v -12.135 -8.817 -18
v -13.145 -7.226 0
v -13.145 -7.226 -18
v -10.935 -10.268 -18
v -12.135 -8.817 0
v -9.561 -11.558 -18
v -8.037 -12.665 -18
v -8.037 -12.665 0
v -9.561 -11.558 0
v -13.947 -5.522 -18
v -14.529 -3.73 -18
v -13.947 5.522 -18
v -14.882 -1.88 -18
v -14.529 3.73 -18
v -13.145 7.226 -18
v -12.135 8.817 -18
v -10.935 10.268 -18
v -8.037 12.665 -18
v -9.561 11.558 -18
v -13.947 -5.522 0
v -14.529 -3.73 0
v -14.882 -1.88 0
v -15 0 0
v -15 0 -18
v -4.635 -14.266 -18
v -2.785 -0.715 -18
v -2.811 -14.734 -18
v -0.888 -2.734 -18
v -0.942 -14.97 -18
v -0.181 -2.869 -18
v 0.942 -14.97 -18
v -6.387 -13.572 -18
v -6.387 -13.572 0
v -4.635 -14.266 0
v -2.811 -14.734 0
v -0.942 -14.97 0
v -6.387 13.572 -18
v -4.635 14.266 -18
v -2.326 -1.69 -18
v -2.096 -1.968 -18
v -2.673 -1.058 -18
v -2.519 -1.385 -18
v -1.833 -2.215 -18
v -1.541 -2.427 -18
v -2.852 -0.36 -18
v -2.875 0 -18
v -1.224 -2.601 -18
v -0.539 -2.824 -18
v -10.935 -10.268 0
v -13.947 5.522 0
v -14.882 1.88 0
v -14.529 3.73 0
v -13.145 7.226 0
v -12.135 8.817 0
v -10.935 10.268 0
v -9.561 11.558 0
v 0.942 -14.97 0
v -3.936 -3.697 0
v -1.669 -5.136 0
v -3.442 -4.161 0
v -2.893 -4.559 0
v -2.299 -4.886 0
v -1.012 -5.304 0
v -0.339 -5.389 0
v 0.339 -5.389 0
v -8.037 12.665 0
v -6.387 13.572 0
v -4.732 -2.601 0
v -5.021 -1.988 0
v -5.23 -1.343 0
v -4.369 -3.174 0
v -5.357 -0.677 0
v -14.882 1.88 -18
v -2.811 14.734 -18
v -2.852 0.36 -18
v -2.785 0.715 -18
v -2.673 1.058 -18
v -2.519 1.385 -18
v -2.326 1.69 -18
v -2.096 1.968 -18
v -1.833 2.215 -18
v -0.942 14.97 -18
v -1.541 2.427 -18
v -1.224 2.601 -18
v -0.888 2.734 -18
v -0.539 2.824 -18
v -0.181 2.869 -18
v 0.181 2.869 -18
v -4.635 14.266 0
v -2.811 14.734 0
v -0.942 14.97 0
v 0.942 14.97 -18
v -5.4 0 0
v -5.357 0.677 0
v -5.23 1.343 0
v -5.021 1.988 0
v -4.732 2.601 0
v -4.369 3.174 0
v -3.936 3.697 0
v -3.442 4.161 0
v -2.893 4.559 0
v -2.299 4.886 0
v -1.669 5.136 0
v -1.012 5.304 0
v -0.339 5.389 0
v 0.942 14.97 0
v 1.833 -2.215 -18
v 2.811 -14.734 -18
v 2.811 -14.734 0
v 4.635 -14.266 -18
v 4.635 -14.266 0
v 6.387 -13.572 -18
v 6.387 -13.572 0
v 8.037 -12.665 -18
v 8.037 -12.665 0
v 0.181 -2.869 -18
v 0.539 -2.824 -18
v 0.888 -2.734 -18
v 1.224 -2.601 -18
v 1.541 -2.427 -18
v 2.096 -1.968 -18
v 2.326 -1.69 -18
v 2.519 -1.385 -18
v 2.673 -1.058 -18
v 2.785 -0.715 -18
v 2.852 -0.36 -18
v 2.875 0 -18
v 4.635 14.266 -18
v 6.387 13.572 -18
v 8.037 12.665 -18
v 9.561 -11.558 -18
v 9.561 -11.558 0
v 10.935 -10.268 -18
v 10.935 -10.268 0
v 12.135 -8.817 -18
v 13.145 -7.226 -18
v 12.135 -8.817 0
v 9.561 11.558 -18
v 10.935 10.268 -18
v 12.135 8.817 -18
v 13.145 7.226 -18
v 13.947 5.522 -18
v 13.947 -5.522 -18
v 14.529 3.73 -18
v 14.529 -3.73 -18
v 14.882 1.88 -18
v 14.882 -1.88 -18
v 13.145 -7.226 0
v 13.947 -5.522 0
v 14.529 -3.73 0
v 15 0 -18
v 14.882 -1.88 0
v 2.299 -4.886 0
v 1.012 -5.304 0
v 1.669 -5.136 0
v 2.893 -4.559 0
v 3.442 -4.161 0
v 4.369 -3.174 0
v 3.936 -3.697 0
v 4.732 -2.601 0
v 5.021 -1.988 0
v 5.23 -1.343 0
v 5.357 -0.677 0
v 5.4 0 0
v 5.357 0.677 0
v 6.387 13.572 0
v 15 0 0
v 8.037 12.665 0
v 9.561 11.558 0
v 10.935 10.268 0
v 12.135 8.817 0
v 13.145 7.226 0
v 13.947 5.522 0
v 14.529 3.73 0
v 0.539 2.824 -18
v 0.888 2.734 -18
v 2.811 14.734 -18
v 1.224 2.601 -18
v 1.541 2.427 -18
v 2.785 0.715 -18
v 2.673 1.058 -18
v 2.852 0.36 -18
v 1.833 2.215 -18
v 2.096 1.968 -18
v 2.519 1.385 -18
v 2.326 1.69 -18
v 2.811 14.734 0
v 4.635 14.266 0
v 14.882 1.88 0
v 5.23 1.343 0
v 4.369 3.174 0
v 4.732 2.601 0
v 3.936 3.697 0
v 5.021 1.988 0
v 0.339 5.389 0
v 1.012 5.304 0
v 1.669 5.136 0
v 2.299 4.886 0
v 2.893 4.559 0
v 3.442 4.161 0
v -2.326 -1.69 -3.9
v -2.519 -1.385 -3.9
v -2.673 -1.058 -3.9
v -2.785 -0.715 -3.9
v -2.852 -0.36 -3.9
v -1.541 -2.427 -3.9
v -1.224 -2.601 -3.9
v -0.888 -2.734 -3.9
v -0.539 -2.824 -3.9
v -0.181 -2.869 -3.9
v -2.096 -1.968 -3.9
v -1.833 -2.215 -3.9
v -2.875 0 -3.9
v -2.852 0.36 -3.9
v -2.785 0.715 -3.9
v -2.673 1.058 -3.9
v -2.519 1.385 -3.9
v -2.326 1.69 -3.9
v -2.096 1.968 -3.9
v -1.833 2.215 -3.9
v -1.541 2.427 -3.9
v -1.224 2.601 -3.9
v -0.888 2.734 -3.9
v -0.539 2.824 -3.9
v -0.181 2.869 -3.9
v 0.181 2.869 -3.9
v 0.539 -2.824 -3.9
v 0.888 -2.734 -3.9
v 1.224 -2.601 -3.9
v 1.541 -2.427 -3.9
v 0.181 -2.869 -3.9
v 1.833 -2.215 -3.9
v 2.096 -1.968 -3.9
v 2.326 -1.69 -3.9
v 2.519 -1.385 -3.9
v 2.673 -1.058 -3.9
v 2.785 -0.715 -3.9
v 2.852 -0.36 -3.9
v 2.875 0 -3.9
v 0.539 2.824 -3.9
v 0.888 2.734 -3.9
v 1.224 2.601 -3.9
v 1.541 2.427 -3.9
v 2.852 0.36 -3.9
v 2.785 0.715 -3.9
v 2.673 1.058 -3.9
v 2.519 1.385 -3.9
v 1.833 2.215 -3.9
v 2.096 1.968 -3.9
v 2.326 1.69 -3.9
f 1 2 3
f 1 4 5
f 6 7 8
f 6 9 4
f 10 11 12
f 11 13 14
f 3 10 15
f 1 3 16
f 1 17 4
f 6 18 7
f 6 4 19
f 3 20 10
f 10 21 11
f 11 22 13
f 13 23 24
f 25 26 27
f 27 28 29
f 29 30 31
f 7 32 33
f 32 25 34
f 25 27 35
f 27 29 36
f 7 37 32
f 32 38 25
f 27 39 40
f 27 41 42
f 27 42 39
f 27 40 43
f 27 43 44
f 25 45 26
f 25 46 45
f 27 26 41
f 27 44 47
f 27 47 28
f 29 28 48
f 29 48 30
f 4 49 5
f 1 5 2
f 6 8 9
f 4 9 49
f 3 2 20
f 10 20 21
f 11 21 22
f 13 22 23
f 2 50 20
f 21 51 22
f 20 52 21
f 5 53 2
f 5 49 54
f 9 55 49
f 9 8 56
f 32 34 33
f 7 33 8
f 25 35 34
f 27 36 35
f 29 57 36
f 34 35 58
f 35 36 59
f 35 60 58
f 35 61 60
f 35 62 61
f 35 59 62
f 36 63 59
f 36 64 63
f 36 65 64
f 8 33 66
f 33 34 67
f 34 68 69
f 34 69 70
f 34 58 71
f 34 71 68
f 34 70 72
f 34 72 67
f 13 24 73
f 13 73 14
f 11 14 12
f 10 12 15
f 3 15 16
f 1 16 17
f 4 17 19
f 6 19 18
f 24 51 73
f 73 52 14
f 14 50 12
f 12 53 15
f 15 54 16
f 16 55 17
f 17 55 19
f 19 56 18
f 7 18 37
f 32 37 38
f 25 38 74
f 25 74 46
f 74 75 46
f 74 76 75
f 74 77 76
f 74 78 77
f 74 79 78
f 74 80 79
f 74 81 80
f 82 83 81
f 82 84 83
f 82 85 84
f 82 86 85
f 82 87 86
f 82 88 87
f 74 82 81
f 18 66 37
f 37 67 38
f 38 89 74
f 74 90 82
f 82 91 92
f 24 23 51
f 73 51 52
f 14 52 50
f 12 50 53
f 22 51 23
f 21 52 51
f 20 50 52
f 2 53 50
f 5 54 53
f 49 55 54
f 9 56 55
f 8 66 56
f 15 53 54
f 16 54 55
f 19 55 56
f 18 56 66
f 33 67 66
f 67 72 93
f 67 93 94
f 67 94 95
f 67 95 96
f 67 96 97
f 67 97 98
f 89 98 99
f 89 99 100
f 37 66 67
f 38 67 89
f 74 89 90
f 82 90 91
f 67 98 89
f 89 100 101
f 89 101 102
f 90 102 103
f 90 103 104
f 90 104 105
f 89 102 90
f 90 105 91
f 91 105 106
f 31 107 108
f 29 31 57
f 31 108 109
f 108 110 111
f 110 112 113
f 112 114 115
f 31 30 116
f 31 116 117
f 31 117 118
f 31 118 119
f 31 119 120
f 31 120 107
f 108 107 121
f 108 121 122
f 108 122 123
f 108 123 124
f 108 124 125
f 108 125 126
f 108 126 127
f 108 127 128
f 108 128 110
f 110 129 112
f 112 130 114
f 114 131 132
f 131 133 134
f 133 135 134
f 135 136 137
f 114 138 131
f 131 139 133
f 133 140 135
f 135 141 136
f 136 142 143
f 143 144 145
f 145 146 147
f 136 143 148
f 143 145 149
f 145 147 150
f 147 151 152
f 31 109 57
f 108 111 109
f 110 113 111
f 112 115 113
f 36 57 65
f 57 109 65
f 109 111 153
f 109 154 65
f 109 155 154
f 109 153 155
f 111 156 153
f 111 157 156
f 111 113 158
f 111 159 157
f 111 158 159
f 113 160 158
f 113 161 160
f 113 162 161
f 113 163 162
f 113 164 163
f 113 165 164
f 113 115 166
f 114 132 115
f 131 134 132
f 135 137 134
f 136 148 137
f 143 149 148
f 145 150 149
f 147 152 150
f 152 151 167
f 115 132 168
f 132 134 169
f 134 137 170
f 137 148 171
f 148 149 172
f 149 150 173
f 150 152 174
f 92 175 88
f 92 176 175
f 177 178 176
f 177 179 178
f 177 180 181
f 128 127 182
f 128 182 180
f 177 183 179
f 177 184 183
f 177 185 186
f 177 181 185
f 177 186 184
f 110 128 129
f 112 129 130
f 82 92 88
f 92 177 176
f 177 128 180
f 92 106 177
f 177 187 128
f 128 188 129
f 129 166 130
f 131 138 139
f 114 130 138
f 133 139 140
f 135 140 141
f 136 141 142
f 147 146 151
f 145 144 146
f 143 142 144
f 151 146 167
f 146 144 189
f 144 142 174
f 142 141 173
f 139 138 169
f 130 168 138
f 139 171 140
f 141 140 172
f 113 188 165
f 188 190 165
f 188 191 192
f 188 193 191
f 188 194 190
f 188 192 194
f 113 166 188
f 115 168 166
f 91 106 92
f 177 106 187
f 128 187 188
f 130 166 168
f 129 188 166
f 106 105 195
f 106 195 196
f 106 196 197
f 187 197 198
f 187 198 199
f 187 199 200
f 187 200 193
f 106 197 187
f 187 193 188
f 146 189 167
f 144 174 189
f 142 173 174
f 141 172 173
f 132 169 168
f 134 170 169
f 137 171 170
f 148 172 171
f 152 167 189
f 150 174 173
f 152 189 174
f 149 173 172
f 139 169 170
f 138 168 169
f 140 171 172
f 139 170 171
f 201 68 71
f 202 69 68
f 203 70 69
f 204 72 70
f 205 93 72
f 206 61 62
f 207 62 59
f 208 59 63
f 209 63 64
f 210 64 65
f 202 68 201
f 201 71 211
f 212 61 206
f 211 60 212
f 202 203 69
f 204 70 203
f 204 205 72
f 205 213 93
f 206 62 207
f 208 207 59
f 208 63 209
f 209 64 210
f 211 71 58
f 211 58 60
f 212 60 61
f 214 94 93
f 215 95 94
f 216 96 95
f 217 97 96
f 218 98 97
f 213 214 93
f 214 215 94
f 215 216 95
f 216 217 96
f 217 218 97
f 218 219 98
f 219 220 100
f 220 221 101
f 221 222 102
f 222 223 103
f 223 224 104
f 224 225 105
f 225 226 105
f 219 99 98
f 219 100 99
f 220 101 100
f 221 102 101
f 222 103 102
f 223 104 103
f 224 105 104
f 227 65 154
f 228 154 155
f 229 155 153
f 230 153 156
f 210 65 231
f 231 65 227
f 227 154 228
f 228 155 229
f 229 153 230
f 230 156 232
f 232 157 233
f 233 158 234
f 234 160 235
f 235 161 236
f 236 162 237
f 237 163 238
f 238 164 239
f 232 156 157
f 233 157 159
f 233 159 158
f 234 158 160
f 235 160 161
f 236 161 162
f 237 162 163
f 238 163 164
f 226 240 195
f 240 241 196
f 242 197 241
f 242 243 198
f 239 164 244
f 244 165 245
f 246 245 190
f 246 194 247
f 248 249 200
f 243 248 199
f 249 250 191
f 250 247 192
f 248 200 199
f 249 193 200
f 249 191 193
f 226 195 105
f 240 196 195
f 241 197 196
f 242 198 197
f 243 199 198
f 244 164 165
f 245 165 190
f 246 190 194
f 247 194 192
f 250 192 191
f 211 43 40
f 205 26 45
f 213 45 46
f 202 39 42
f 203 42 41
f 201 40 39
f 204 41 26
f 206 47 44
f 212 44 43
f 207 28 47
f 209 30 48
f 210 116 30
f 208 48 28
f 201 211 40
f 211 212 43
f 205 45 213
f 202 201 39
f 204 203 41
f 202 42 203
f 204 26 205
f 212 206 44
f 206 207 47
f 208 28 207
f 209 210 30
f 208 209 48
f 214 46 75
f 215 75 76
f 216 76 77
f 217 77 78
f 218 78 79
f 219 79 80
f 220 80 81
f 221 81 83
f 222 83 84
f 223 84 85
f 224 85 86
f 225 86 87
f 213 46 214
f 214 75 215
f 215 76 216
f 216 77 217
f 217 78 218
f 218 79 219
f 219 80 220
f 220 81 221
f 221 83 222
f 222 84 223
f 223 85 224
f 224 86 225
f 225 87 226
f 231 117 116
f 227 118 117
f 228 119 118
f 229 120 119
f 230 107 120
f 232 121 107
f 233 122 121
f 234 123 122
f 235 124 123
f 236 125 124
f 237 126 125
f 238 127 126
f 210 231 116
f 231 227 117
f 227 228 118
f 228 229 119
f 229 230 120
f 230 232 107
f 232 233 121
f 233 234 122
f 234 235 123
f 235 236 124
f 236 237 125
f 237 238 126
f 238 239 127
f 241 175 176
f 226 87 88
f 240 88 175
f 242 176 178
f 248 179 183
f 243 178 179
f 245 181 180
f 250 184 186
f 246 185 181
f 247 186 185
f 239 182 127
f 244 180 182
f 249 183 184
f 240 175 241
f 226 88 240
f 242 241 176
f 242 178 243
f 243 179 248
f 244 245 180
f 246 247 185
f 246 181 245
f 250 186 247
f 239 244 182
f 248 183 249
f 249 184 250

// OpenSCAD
$fn = 50;

difference() {
	union() {
		translate(v = [0, 0, -18.0]) {
			cylinder(h = 18, r = 15.0);
		}
		#translate(v = [0, 0, -21.0]) {
			cylinder(h = 21, r = 2.875);
		}
	}
	union() {
		translate(v = [0, 0, 0]) {
			rotate(a = [0, 0, 0]) {
				difference() {
					union() {
						translate(v = [0, 0, -21.0]) {
							cylinder(h = 21, r = 2.6);
						}
						translate(v = [0, 0, -3.9]) {
							cylinder(h = 3.9, r1 = 2.875, r2 = 5.4);
						}
						translate(v = [0, 0, -21.0]) {
							cylinder(h = 21, r = 2.875);
						}
						translate(v = [0, 0, -21.0]) {
							cylinder(h = 21, r = 2.6);
						}
					}
					union();
				}
			}
		}
	}
}
